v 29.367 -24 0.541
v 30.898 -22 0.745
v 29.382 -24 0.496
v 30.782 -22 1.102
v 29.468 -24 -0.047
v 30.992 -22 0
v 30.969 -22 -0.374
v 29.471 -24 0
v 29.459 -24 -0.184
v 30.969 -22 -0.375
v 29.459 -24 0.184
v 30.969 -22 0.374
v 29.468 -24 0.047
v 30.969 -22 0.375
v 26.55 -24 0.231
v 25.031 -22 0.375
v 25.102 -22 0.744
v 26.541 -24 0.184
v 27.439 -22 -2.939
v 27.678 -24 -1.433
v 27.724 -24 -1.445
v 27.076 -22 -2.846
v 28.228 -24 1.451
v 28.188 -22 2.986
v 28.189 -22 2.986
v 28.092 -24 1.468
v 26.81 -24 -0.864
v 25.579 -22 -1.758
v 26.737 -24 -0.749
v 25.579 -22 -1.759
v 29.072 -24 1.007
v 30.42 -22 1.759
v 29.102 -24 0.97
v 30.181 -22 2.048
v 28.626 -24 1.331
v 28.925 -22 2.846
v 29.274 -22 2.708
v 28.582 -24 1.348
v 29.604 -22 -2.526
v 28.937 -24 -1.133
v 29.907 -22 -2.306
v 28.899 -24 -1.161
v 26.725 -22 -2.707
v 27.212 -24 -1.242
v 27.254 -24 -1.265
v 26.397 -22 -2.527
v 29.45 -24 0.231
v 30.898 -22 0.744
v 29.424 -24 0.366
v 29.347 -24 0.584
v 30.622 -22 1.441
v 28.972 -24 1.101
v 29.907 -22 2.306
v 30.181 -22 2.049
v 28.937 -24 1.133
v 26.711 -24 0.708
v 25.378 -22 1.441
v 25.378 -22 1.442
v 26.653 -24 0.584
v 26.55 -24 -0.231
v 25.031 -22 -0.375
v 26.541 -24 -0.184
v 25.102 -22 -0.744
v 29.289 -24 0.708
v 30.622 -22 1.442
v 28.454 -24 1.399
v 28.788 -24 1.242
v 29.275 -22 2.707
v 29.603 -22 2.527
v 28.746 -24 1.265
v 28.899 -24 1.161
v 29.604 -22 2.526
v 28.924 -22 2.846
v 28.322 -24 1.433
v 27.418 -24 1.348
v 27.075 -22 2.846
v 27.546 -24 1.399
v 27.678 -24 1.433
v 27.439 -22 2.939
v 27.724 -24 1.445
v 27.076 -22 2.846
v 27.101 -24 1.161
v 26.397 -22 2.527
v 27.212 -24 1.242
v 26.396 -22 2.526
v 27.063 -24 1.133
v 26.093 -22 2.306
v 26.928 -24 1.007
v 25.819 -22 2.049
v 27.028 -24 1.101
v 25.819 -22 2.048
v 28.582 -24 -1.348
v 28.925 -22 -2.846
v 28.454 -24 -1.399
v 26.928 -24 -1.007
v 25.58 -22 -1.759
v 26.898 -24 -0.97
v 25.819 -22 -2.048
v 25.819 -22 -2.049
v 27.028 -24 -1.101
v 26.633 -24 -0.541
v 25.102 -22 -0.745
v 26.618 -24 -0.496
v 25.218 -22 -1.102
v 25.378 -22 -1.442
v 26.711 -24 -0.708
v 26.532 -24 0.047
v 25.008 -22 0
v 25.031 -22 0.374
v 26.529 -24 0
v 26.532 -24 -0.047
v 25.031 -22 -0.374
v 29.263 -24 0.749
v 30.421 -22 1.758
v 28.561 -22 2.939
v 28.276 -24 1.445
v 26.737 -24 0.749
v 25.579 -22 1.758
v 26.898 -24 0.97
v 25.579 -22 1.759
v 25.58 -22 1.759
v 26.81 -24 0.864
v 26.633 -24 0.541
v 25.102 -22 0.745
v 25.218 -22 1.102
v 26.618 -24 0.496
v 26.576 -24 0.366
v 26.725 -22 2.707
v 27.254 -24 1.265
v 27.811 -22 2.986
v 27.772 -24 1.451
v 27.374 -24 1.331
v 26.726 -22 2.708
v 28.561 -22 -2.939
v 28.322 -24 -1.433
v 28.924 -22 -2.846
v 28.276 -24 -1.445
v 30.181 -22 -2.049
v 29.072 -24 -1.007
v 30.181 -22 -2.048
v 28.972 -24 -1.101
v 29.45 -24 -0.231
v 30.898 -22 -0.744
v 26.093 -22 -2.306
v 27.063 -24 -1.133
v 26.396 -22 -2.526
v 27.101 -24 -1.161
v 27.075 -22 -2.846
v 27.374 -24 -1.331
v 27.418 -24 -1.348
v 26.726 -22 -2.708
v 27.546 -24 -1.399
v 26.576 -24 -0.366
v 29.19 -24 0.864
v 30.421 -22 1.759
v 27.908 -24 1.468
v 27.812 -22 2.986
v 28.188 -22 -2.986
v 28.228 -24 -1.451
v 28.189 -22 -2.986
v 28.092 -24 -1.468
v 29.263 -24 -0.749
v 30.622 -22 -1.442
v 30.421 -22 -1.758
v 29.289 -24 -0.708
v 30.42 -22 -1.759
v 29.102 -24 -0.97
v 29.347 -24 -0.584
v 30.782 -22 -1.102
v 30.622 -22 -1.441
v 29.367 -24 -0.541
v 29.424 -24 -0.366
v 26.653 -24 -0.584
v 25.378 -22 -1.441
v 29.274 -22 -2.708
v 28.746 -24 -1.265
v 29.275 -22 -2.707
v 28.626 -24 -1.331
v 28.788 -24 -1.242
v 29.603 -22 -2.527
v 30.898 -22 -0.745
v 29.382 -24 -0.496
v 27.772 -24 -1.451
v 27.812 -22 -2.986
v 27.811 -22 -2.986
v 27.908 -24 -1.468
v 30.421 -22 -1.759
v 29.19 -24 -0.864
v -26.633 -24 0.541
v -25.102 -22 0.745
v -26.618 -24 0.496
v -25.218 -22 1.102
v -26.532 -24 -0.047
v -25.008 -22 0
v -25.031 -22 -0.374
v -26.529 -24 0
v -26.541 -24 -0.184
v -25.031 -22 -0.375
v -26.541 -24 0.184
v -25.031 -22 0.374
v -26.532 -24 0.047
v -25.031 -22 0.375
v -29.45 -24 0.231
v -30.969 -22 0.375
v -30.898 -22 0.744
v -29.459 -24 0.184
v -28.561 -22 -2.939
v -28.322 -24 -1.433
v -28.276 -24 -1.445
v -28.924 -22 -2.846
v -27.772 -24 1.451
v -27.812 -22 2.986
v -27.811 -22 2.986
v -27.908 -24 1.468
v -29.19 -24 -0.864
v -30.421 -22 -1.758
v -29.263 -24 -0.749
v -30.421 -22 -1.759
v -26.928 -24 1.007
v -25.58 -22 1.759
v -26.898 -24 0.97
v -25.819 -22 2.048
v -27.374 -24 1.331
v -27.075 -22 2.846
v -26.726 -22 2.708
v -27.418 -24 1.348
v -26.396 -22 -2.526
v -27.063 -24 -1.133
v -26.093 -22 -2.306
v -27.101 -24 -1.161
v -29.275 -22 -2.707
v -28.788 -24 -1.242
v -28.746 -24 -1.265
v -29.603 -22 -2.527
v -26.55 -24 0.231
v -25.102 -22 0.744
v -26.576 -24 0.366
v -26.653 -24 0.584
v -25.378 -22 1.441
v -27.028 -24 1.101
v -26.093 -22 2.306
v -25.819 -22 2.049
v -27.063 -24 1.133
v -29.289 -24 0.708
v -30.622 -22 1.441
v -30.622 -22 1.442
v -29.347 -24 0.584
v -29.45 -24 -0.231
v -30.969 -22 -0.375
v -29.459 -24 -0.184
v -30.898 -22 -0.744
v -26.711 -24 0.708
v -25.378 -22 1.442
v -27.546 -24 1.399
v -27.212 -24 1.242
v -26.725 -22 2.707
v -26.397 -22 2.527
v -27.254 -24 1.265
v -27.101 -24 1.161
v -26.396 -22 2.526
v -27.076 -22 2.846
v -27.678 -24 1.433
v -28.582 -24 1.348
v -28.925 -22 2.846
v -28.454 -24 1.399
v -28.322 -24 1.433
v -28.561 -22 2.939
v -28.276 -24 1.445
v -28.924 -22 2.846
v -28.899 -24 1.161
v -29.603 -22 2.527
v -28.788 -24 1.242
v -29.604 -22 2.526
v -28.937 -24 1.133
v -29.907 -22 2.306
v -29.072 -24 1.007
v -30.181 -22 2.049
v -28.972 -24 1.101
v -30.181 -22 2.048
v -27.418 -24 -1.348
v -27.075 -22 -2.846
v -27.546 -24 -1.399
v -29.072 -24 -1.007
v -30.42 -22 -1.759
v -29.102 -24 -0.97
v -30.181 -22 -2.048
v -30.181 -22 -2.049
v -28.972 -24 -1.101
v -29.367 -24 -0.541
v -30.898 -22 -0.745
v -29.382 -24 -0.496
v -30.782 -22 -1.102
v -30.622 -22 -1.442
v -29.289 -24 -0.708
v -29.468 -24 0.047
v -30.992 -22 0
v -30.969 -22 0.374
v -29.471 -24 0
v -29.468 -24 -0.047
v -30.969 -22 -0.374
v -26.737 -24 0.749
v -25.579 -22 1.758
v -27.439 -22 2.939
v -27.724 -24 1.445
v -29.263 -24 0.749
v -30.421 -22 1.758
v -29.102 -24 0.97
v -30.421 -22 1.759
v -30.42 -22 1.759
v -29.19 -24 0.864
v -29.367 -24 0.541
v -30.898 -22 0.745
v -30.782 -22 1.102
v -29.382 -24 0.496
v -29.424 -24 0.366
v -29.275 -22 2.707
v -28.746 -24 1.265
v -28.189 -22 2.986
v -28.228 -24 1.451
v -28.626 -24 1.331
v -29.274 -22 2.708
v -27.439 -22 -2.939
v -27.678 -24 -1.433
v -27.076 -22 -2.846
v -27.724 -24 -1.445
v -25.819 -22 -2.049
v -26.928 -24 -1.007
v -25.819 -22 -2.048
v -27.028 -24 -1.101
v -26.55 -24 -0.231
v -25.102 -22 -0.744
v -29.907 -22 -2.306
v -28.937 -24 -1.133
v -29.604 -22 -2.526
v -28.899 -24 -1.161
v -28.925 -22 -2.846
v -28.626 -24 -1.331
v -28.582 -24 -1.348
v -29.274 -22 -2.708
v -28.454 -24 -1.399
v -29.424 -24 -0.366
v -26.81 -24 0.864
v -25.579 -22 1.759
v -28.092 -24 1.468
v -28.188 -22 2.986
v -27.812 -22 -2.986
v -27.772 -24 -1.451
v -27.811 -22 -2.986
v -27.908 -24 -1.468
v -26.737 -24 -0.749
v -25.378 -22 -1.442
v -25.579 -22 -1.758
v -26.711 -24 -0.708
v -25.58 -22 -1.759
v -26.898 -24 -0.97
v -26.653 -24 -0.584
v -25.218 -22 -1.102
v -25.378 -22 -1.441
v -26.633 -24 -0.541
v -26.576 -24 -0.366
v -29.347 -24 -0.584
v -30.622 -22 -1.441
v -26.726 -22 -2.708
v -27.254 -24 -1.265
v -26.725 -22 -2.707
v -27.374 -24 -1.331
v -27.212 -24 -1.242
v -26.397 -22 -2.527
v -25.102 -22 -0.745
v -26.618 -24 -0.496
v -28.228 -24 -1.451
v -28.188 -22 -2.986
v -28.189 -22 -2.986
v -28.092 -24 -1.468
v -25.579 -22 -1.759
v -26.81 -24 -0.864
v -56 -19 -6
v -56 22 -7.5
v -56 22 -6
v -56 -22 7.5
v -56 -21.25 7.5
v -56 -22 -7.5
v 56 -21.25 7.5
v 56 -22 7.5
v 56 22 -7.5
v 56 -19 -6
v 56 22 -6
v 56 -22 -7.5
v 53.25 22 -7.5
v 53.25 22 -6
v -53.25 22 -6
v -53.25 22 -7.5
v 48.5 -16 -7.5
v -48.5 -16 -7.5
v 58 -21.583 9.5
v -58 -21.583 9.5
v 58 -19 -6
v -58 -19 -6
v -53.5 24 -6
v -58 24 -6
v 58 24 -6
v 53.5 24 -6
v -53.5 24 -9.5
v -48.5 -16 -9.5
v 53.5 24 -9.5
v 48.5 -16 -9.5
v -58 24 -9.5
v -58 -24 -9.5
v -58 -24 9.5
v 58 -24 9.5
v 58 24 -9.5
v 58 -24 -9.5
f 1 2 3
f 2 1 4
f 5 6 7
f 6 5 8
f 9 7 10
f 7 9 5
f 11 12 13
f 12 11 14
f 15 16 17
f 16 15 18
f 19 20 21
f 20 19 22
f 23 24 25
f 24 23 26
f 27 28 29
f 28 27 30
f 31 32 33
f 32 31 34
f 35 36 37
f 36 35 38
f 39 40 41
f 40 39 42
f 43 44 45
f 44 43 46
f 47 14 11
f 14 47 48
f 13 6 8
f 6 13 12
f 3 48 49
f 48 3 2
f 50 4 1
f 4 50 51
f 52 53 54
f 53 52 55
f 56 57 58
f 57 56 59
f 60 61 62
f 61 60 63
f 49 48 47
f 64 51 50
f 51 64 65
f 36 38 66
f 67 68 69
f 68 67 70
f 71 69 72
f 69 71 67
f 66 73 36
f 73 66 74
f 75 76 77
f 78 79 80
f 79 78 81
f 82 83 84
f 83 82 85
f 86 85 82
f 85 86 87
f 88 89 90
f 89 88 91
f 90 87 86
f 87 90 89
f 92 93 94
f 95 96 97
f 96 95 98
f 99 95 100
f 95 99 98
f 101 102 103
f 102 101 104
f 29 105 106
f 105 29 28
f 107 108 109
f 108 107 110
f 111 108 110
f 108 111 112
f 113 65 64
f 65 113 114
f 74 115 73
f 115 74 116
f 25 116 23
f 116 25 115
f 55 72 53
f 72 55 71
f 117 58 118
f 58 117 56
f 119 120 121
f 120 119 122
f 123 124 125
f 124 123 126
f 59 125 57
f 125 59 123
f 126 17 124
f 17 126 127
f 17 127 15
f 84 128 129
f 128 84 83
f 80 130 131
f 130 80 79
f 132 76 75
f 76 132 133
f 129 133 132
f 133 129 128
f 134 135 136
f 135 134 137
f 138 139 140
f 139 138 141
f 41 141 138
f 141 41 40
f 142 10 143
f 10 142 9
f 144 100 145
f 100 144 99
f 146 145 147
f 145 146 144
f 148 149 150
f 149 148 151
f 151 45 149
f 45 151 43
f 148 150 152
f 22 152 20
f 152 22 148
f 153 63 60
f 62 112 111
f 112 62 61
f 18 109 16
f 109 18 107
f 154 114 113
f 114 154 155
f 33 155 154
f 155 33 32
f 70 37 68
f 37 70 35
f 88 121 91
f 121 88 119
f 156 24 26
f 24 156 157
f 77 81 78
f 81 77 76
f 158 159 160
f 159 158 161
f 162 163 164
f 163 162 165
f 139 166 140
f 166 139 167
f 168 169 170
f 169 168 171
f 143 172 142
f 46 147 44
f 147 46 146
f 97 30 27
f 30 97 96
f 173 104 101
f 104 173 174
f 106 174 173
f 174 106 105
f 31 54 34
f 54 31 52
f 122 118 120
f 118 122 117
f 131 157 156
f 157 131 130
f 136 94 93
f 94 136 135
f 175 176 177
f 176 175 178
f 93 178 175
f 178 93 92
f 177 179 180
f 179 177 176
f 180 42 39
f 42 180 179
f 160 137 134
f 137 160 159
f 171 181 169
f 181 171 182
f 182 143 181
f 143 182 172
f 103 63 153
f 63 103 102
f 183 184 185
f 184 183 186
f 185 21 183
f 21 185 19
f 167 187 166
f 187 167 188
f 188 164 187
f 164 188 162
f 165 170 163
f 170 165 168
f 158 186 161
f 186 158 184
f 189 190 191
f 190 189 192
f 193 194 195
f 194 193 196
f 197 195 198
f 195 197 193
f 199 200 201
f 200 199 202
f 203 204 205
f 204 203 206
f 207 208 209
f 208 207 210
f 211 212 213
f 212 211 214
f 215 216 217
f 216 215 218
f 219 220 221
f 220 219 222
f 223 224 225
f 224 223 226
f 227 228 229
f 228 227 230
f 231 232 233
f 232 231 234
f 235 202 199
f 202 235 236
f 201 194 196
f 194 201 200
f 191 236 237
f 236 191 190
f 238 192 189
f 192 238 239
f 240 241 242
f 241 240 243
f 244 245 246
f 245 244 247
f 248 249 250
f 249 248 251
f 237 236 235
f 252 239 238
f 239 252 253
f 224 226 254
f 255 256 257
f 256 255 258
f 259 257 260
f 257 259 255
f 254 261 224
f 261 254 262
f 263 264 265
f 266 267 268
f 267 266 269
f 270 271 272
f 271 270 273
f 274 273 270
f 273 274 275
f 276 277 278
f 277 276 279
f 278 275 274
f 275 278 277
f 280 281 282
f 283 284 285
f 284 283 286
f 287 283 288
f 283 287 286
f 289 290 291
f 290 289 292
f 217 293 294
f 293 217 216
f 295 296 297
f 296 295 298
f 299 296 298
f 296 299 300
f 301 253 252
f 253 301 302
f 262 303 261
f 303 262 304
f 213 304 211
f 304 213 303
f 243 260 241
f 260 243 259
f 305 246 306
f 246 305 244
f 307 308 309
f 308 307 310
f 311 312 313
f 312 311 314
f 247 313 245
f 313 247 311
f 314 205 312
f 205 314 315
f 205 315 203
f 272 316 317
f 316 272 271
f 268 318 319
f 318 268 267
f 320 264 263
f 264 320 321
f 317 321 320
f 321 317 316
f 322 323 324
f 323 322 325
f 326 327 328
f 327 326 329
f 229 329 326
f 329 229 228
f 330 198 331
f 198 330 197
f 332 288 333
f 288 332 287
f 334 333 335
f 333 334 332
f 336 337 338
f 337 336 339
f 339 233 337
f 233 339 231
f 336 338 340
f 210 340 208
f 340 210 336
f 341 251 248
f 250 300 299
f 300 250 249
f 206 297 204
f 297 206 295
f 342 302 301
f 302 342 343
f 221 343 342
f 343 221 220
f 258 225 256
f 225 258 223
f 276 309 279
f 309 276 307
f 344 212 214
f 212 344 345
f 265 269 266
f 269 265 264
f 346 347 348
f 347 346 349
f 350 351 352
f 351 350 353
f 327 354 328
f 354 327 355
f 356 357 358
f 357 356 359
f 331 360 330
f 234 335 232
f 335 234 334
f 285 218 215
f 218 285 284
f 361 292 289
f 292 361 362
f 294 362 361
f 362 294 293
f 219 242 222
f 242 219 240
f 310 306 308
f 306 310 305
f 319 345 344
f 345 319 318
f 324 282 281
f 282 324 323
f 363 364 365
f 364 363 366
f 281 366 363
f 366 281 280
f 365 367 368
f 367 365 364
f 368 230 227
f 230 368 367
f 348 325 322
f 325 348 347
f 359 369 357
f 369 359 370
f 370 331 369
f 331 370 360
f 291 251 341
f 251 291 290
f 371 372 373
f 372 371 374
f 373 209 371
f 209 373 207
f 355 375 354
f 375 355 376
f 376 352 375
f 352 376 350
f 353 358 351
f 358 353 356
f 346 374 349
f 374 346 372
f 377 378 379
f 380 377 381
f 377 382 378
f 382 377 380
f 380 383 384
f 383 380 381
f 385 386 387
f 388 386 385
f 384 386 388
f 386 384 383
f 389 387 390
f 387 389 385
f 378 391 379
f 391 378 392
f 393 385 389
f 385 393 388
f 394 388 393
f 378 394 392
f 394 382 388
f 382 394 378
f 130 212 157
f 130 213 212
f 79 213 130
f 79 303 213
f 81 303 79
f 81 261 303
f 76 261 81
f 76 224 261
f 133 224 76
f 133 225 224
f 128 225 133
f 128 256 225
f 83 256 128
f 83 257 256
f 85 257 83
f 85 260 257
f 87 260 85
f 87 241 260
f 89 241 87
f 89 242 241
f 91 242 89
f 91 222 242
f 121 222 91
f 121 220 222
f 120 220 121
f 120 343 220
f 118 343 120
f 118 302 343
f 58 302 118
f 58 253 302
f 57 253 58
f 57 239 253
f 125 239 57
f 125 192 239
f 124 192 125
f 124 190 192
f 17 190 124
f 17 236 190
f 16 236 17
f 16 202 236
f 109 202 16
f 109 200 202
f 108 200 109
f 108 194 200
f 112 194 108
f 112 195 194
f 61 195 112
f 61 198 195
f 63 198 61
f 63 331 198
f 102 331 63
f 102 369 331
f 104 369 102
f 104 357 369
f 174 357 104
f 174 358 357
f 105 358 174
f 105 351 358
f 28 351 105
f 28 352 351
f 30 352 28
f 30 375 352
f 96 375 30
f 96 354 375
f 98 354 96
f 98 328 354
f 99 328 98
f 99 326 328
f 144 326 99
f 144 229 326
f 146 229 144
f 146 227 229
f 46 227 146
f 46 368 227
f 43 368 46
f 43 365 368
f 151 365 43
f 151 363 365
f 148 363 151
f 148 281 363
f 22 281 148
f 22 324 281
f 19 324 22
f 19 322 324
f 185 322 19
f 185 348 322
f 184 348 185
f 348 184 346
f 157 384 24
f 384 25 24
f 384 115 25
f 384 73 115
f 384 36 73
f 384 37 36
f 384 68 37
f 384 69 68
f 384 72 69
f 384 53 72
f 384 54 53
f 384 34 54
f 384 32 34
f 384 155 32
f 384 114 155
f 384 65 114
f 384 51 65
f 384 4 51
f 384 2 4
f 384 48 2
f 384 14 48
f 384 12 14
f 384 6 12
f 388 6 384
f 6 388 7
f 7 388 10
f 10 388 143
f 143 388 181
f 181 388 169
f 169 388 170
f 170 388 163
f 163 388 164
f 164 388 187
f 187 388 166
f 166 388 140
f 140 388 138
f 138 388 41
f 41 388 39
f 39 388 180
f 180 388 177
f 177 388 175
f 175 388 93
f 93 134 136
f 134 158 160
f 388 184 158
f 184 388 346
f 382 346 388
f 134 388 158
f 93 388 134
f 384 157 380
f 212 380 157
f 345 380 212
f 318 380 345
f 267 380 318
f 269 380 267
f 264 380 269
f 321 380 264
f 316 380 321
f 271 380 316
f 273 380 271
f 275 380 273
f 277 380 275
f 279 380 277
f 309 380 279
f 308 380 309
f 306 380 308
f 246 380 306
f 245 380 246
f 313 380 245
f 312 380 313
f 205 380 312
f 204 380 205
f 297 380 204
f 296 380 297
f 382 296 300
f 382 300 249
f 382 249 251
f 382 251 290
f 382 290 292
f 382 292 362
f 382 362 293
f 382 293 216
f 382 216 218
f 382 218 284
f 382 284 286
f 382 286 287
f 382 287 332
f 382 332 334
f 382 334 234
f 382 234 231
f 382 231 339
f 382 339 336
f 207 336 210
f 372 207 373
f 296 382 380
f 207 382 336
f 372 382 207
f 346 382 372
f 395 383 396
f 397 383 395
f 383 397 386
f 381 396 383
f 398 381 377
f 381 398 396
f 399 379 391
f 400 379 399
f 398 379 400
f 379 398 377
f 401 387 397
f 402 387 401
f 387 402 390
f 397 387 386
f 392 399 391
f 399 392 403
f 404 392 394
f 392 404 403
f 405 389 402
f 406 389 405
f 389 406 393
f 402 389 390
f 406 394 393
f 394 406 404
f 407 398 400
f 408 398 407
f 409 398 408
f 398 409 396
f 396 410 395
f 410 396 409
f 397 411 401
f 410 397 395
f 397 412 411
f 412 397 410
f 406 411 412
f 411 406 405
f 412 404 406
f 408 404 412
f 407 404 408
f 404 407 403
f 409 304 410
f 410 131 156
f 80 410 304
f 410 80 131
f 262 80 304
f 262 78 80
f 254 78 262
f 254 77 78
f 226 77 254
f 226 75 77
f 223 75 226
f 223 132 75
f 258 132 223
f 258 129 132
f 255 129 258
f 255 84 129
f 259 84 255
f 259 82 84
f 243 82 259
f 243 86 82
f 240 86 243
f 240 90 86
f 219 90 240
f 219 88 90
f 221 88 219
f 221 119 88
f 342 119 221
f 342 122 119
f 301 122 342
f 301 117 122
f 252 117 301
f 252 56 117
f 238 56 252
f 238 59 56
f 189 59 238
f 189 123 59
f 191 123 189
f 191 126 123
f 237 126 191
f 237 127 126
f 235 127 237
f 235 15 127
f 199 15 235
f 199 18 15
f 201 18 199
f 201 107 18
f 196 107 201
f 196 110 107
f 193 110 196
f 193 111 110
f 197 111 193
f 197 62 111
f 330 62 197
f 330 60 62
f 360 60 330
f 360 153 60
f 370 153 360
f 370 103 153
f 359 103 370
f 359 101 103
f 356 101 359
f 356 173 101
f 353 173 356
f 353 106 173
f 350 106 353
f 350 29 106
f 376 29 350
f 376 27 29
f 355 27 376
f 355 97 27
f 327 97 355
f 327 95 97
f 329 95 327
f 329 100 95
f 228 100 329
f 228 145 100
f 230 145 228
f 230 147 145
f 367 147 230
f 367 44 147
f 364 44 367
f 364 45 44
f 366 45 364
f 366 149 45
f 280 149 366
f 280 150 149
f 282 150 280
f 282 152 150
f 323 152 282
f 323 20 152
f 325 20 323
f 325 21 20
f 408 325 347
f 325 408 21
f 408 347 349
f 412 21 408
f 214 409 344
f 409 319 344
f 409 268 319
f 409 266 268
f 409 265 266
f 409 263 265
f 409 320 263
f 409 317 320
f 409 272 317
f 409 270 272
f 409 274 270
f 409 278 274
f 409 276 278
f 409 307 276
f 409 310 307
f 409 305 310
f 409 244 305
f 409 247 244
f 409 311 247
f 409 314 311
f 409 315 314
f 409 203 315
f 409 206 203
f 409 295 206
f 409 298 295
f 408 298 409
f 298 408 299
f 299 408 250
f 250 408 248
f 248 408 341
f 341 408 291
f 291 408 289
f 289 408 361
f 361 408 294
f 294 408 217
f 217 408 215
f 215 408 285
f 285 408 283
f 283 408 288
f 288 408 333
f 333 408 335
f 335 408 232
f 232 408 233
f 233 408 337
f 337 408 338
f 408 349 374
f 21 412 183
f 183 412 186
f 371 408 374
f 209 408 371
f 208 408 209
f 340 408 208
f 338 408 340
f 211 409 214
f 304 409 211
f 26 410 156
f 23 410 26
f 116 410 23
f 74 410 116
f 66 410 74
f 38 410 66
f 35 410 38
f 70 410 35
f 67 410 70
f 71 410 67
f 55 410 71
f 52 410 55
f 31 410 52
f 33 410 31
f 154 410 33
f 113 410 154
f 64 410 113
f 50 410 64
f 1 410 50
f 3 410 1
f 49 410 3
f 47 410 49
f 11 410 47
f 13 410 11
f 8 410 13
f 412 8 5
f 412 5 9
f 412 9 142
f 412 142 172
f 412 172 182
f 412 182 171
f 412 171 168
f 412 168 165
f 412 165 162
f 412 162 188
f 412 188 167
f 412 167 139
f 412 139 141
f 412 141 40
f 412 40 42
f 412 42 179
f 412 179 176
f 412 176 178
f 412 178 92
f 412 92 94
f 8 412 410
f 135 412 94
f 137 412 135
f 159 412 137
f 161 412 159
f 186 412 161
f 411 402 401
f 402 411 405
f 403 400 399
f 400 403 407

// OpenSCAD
// file: 2d.scad
use <vector.scad>

function max_x(a, i = 0) = (len(a) == 0) ? 0 : (i < len(a) - 1) ? max(a[i][0], max_x(a, i+1)) : a[i][0];
function shift_x(a, dx, scaler=1) = [for ( p=a) [scaler*p[0]+dx,p[1]] ];

function scale_poly(a, s=[1,1]) = [for (p=a) [ s[0]*p[0], s[1]*p[1] ]];
function shift_poly(a, d=[0,0]) = [for (p=a) [ d + p ]];

function inverse_x(a) = shift_x(reverse(a),max_x(a),-1);
function mirror_x(a) = shift_x(reverse(a),0,-1);

function symmetry_x(a) = scale_poly(reverse(a),s=[-1,1]);
function symmetry_y(a) = scale_poly(reverse(a),s=[1,-1]);

function concat_with_undefs(prev,next) = 
    len(prev) == 0 ? next : 
        let (prev_last_p = prev[v_index(prev,-1)]) 
        is_undef(prev_last_p[1])  
            ? concat(slice(prev,0,-1),[[prev_last_p[0],next[0][1]]],next) 
            : is_undef(next[0][1]) 
                ? concat(prev, [[next[0][0],prev_last_p[1]]], slice(next,1)) 
                : concat(prev, next) ;

function join_poly(polys, r = [], i=0) = (i < len(polys)) ? 
    join_poly( polys, concat_with_undefs(r,shift_x(polys[i],max_x(r))) ,i+1) : r;

function line_segment(p1,p2) = [p1,[p2[0]-p1[0], p2[1] - p1[1]]];

function ls_slope(ls) = ls[1][1]/ls[1][0] ;

function ls_distance(ls) = sqrt(pow(ls[1][1],2)+pow(ls[1][0],2));

function ls_angle(ls) = 
    let (ss = sign(ls[1][1]) == -1 ? -1 : 1)
    let (sc = sign(ls[1][0]) == -1 ? -1 : 1)
    let (ts = asin(ls[1][1]/ls_distance(ls))) 
    ts != 0 ? ( sc == -1 ? ss * 180 - ts : ts ) : ss*acos(ls[1][0]/ls_distance(ls))  ;
    
assert(ls_angle([[0, 0], [1, 0]])==0);
assert(ls_angle([[0, 0], [-1, 0]])==180);


function angle_diff_cw(a1, a2) = a1 < a2 ? angle_diff_cw(a1+360, a2) : a1 - a2 ;

function angle_diff_ccw(a1, a2) = angle_diff_cw(a2, a1);

function ls_midpoint(ls) = ls[0]+ls[1]/2;

function ls_endpoint(ls) = ls[0]+ls[1];

function line(slope,pt) = [slope, pt[1]-slope*pt[0]];

function l_y(l,x) = l[0]*x + l[1];

function l_segment(l,x1,x2) = line_segment([x1, l_y(l,x1)], [x2, l_y(l,x2)]);

function ls_line(ls) = let(slope=ls_slope(ls)) line(slope,ls[0]);

function ls_perpendicular(ls) = 
    let (l = ls_line(ls)) 
    let (mp = ls_midpoint(ls))
    line(-1/l[0], mp);

function intersect_lines(l1, l2) = 
    let (x = (l2[1]-l1[1])/(l1[0]-l2[0]))
    [x,l_y(l1,x)];

function interpolate_point(ls,fraction) =  [
    ls[0][0] + fraction*ls[1][0],
    ls[0][1] + fraction*ls[1][1]
];


function bezier_curve( a, b, c ) =
    len(a)==3 ? _bezier_curve(a[0],a[1],a[2]) : _bezier_curve(a,b,c);

function _bezier_curve( p1, p2, p3 ) =
    [line_segment(p1,p2), line_segment(p2, p3)];

function curve_point(bc, fraction) =
    interpolate_point(
        line_segment(
            interpolate_point(bc[0],fraction), 
            interpolate_point(bc[1], fraction)), 
        fraction);

function bc_poly(bc, n_points=10) = [for ( f = [0:1/n_points:1]) curve_point(bc, f)] ;

function rake_poly(up_ramp, down_to_valley, n_of_valleys) = 
    join_poly(concat(
        [up_ramp],
        repeat(
            [
                down_to_valley, 
                inverse_x(down_to_valley) // up on other side of the valley
            ], 
            n_of_valleys),
        [inverse_x(up_ramp)] // down ramp
    ));

function arc_point(a,f) = 
    let(c = a[0])
    let(r = a[1])
    let(initial_angle = a[2])
    let(cw = a[3])
    let(range = a[4])
    let (angle = cw ? initial_angle - f * range : initial_angle + f * range)
    c+[r*cos(angle),r*sin(angle)];

function arc_poly(a, n_points=10) = [for ( f = [0:1/n_points:1]) arc_point(a, f)] ;

function arc( a, b, c ) =
    len(a)==3 ? _arc(a[0],a[1],a[2]) : _arc(a,b,c);

function _arc( p1, p2, p3 ) =
    let(ls1 = line_segment(p1,p2))
    let(ls2 = line_segment(p2,p3))
    let(ls3 = line_segment(p1,p3))    
    let(lp1 = ls_perpendicular(ls1))
    let(lp2 = ls_perpendicular(ls2))
    let(lp3 = ls_perpendicular(ls3))
    let(c12 = intersect_lines(lp1,lp2))
    let(c23 = intersect_lines(lp2,lp3))
    let(c13 = intersect_lines(lp1,lp3))
    let(c = !is_nan(c23[0]) ? c23 : !is_nan(c13[0])? c13 : c12 )
    let(r1 = line_segment(c,p1))
    let(r2 = line_segment(c,p2))
    let(r3 = line_segment(c,p3))
    let(r = ls_distance(r1))
    let(a1 = ls_angle(r1))
    let(a2 = ls_angle(r2))
    let(a3 = ls_angle(r3))
    let(cw = angle_diff_cw(a1,a2) < angle_diff_cw(a1,a3))
    let(a_diff = cw ? angle_diff_cw(a1,a3) : angle_diff_ccw(a1,a3))
    [c,r,a1,cw,a_diff];


// linear interpolation or extrapolation (middle by default or any ratio) 
// using 2 points `a` and `b`
function mid(a,b,ratio=.5) = b + (a-b)*ratio ; 

function triangle(a,b,split=.5,height=.5) =
    let (delta = (mid(a,b,height)-b) * [[0,1],[-1,0]])
    let (z = mid(a,b,split) + delta)
    [a,z,b];

assert(arc([0,0],[0,1],[1,1])==arc([[0,0],[0,1],[1,1]]));
assert(bezier_curve([0,0],[0,1],[1,1])==bezier_curve([[0,0],[0,1],[1,1]]));

// echo(arc([0,0],[0,1],[1,1]));
// echo(arc(triangle([0,0],[1,1],.5,-.5)));

assert(arc([0,0],[0,1],[1,1])==arc(triangle([0,0],[1,1],.5,-.5)));
assert(arc([1,1],[1,2],[2,2])==arc(triangle([1,1],[2,2],.5,-.5)));

// echo(arc([0,0],[1,0],[1,1]));
// echo(arc(triangle([0,0],[1,1],.5,.5)));

assert(arc([0,0],[1,0],[1,1])==arc(triangle([0,0],[1,1],.5,.5)));
assert(arc([1,1],[2,1],[2,2])==arc(triangle([1,1],[2,2],.5,.5)));

// echo(arc(triangle([1,0], [-1,0])));
assert(arc(triangle([1,0], [-1,0])) ==  [[0, 0], 1, 0, false, 180]);

// echo(arc(triangle([0,-1], [0,1])));
assert(arc(triangle([0,-1], [0,1])) ==  [[0, 0], 1, -90, false, 180]);

// echo(arc(triangle([0,-1], [0,1],height=-.5)));
assert(arc(triangle([0,-1], [0,1], height=-.5)) ==  [[0, 0], 1, -90, true, 180]);
// file: vector.scad
function is_nan(x) = x != x ;

// reverse vector
function reverse(v) = [for (i =[len(v)-1:-1:0]) v[i]];
// repeat vector n-times
function repeat(v, n) = [for (i=[0:n*len(v)-1])  v[ i%len(v) ] ];
// allow negative indexes for vector (counting from the back). -1 is last element in array
function v_index(v, n) = is_undef(n) ? len(v) : n < 0 ? len(v)+n : n ;
// cut slice of vertor. `start` included , `end` excluded.
function slice(v, start, end=undef) = [for (i=[start:v_index(v,end)-1]) v[i] ];

function v_add(v, n) = [for (i=[0:len(v)-1]) v[i]+n ];

assert(reverse([1,2,3]) == [3,2,1]);
assert(repeat([1,2],3) ==  [1, 2, 1, 2, 1, 2]);
assert(v_index([1,2,3],-1)==2);
assert(v_index([1,2,3],0) == 0);
assert(v_index([1,2,3],undef)==3);
assert(slice([1,2,3],1,-1)==[2]);
assert(slice([1,2,3],1)==[2,3]);
assert(v_add([1,2,3],1)==[2,3,4]);
// main file
w=112;
d=44;
h=15;
o=2; //outside
l=1;
e=0.01;

use <vector.scad>
use <2d.scad>


module countersink(hole_d,hole_h, screw_d,screw_h){
    h = hole_h - screw_h ;
    union(){
        cylinder(d=hole_d,h=h+e,$fn=50);
        translate([0,0,h]) cylinder(d1=hole_d, d2=screw_d,h=screw_h,$fn=50);
    }
}

module backwall_alterations(ww)
    union(){
        // screw hole
        #translate([ww/4,-d/2-5+e,0]) 
            rotate([-90,0,0]) countersink(2.5,5,6,2.3);
    }

box = [w,d,h];
box_with_walls = v_add(box, 2*o);

module hatchbox(w1, w2, dd, hh){
    x1 = w1/2;
    x2 = w2/2;
    y = dd/2;
    translate( [0,0,-hh/2] )
    linear_extrude(height=hh) 
        polygon(points=[[x1,y],[-x1,y],[-x2,-y],[x2,-y]]);
}

difference (){
    cube(box_with_walls, center=true);
    union(){
        cube(box, center=true);
        translate([0, l+o, o+l]) rotate([-90, 0, 90]) 
            hatchbox(d,d+6,h+o+l,w+3*o);
        translate([0, 3*o, 0]) 
            hatchbox(w-4,w-15,d,h+3*o);
        backwall_alterations(w);
        backwall_alterations(-w);
    }
}
